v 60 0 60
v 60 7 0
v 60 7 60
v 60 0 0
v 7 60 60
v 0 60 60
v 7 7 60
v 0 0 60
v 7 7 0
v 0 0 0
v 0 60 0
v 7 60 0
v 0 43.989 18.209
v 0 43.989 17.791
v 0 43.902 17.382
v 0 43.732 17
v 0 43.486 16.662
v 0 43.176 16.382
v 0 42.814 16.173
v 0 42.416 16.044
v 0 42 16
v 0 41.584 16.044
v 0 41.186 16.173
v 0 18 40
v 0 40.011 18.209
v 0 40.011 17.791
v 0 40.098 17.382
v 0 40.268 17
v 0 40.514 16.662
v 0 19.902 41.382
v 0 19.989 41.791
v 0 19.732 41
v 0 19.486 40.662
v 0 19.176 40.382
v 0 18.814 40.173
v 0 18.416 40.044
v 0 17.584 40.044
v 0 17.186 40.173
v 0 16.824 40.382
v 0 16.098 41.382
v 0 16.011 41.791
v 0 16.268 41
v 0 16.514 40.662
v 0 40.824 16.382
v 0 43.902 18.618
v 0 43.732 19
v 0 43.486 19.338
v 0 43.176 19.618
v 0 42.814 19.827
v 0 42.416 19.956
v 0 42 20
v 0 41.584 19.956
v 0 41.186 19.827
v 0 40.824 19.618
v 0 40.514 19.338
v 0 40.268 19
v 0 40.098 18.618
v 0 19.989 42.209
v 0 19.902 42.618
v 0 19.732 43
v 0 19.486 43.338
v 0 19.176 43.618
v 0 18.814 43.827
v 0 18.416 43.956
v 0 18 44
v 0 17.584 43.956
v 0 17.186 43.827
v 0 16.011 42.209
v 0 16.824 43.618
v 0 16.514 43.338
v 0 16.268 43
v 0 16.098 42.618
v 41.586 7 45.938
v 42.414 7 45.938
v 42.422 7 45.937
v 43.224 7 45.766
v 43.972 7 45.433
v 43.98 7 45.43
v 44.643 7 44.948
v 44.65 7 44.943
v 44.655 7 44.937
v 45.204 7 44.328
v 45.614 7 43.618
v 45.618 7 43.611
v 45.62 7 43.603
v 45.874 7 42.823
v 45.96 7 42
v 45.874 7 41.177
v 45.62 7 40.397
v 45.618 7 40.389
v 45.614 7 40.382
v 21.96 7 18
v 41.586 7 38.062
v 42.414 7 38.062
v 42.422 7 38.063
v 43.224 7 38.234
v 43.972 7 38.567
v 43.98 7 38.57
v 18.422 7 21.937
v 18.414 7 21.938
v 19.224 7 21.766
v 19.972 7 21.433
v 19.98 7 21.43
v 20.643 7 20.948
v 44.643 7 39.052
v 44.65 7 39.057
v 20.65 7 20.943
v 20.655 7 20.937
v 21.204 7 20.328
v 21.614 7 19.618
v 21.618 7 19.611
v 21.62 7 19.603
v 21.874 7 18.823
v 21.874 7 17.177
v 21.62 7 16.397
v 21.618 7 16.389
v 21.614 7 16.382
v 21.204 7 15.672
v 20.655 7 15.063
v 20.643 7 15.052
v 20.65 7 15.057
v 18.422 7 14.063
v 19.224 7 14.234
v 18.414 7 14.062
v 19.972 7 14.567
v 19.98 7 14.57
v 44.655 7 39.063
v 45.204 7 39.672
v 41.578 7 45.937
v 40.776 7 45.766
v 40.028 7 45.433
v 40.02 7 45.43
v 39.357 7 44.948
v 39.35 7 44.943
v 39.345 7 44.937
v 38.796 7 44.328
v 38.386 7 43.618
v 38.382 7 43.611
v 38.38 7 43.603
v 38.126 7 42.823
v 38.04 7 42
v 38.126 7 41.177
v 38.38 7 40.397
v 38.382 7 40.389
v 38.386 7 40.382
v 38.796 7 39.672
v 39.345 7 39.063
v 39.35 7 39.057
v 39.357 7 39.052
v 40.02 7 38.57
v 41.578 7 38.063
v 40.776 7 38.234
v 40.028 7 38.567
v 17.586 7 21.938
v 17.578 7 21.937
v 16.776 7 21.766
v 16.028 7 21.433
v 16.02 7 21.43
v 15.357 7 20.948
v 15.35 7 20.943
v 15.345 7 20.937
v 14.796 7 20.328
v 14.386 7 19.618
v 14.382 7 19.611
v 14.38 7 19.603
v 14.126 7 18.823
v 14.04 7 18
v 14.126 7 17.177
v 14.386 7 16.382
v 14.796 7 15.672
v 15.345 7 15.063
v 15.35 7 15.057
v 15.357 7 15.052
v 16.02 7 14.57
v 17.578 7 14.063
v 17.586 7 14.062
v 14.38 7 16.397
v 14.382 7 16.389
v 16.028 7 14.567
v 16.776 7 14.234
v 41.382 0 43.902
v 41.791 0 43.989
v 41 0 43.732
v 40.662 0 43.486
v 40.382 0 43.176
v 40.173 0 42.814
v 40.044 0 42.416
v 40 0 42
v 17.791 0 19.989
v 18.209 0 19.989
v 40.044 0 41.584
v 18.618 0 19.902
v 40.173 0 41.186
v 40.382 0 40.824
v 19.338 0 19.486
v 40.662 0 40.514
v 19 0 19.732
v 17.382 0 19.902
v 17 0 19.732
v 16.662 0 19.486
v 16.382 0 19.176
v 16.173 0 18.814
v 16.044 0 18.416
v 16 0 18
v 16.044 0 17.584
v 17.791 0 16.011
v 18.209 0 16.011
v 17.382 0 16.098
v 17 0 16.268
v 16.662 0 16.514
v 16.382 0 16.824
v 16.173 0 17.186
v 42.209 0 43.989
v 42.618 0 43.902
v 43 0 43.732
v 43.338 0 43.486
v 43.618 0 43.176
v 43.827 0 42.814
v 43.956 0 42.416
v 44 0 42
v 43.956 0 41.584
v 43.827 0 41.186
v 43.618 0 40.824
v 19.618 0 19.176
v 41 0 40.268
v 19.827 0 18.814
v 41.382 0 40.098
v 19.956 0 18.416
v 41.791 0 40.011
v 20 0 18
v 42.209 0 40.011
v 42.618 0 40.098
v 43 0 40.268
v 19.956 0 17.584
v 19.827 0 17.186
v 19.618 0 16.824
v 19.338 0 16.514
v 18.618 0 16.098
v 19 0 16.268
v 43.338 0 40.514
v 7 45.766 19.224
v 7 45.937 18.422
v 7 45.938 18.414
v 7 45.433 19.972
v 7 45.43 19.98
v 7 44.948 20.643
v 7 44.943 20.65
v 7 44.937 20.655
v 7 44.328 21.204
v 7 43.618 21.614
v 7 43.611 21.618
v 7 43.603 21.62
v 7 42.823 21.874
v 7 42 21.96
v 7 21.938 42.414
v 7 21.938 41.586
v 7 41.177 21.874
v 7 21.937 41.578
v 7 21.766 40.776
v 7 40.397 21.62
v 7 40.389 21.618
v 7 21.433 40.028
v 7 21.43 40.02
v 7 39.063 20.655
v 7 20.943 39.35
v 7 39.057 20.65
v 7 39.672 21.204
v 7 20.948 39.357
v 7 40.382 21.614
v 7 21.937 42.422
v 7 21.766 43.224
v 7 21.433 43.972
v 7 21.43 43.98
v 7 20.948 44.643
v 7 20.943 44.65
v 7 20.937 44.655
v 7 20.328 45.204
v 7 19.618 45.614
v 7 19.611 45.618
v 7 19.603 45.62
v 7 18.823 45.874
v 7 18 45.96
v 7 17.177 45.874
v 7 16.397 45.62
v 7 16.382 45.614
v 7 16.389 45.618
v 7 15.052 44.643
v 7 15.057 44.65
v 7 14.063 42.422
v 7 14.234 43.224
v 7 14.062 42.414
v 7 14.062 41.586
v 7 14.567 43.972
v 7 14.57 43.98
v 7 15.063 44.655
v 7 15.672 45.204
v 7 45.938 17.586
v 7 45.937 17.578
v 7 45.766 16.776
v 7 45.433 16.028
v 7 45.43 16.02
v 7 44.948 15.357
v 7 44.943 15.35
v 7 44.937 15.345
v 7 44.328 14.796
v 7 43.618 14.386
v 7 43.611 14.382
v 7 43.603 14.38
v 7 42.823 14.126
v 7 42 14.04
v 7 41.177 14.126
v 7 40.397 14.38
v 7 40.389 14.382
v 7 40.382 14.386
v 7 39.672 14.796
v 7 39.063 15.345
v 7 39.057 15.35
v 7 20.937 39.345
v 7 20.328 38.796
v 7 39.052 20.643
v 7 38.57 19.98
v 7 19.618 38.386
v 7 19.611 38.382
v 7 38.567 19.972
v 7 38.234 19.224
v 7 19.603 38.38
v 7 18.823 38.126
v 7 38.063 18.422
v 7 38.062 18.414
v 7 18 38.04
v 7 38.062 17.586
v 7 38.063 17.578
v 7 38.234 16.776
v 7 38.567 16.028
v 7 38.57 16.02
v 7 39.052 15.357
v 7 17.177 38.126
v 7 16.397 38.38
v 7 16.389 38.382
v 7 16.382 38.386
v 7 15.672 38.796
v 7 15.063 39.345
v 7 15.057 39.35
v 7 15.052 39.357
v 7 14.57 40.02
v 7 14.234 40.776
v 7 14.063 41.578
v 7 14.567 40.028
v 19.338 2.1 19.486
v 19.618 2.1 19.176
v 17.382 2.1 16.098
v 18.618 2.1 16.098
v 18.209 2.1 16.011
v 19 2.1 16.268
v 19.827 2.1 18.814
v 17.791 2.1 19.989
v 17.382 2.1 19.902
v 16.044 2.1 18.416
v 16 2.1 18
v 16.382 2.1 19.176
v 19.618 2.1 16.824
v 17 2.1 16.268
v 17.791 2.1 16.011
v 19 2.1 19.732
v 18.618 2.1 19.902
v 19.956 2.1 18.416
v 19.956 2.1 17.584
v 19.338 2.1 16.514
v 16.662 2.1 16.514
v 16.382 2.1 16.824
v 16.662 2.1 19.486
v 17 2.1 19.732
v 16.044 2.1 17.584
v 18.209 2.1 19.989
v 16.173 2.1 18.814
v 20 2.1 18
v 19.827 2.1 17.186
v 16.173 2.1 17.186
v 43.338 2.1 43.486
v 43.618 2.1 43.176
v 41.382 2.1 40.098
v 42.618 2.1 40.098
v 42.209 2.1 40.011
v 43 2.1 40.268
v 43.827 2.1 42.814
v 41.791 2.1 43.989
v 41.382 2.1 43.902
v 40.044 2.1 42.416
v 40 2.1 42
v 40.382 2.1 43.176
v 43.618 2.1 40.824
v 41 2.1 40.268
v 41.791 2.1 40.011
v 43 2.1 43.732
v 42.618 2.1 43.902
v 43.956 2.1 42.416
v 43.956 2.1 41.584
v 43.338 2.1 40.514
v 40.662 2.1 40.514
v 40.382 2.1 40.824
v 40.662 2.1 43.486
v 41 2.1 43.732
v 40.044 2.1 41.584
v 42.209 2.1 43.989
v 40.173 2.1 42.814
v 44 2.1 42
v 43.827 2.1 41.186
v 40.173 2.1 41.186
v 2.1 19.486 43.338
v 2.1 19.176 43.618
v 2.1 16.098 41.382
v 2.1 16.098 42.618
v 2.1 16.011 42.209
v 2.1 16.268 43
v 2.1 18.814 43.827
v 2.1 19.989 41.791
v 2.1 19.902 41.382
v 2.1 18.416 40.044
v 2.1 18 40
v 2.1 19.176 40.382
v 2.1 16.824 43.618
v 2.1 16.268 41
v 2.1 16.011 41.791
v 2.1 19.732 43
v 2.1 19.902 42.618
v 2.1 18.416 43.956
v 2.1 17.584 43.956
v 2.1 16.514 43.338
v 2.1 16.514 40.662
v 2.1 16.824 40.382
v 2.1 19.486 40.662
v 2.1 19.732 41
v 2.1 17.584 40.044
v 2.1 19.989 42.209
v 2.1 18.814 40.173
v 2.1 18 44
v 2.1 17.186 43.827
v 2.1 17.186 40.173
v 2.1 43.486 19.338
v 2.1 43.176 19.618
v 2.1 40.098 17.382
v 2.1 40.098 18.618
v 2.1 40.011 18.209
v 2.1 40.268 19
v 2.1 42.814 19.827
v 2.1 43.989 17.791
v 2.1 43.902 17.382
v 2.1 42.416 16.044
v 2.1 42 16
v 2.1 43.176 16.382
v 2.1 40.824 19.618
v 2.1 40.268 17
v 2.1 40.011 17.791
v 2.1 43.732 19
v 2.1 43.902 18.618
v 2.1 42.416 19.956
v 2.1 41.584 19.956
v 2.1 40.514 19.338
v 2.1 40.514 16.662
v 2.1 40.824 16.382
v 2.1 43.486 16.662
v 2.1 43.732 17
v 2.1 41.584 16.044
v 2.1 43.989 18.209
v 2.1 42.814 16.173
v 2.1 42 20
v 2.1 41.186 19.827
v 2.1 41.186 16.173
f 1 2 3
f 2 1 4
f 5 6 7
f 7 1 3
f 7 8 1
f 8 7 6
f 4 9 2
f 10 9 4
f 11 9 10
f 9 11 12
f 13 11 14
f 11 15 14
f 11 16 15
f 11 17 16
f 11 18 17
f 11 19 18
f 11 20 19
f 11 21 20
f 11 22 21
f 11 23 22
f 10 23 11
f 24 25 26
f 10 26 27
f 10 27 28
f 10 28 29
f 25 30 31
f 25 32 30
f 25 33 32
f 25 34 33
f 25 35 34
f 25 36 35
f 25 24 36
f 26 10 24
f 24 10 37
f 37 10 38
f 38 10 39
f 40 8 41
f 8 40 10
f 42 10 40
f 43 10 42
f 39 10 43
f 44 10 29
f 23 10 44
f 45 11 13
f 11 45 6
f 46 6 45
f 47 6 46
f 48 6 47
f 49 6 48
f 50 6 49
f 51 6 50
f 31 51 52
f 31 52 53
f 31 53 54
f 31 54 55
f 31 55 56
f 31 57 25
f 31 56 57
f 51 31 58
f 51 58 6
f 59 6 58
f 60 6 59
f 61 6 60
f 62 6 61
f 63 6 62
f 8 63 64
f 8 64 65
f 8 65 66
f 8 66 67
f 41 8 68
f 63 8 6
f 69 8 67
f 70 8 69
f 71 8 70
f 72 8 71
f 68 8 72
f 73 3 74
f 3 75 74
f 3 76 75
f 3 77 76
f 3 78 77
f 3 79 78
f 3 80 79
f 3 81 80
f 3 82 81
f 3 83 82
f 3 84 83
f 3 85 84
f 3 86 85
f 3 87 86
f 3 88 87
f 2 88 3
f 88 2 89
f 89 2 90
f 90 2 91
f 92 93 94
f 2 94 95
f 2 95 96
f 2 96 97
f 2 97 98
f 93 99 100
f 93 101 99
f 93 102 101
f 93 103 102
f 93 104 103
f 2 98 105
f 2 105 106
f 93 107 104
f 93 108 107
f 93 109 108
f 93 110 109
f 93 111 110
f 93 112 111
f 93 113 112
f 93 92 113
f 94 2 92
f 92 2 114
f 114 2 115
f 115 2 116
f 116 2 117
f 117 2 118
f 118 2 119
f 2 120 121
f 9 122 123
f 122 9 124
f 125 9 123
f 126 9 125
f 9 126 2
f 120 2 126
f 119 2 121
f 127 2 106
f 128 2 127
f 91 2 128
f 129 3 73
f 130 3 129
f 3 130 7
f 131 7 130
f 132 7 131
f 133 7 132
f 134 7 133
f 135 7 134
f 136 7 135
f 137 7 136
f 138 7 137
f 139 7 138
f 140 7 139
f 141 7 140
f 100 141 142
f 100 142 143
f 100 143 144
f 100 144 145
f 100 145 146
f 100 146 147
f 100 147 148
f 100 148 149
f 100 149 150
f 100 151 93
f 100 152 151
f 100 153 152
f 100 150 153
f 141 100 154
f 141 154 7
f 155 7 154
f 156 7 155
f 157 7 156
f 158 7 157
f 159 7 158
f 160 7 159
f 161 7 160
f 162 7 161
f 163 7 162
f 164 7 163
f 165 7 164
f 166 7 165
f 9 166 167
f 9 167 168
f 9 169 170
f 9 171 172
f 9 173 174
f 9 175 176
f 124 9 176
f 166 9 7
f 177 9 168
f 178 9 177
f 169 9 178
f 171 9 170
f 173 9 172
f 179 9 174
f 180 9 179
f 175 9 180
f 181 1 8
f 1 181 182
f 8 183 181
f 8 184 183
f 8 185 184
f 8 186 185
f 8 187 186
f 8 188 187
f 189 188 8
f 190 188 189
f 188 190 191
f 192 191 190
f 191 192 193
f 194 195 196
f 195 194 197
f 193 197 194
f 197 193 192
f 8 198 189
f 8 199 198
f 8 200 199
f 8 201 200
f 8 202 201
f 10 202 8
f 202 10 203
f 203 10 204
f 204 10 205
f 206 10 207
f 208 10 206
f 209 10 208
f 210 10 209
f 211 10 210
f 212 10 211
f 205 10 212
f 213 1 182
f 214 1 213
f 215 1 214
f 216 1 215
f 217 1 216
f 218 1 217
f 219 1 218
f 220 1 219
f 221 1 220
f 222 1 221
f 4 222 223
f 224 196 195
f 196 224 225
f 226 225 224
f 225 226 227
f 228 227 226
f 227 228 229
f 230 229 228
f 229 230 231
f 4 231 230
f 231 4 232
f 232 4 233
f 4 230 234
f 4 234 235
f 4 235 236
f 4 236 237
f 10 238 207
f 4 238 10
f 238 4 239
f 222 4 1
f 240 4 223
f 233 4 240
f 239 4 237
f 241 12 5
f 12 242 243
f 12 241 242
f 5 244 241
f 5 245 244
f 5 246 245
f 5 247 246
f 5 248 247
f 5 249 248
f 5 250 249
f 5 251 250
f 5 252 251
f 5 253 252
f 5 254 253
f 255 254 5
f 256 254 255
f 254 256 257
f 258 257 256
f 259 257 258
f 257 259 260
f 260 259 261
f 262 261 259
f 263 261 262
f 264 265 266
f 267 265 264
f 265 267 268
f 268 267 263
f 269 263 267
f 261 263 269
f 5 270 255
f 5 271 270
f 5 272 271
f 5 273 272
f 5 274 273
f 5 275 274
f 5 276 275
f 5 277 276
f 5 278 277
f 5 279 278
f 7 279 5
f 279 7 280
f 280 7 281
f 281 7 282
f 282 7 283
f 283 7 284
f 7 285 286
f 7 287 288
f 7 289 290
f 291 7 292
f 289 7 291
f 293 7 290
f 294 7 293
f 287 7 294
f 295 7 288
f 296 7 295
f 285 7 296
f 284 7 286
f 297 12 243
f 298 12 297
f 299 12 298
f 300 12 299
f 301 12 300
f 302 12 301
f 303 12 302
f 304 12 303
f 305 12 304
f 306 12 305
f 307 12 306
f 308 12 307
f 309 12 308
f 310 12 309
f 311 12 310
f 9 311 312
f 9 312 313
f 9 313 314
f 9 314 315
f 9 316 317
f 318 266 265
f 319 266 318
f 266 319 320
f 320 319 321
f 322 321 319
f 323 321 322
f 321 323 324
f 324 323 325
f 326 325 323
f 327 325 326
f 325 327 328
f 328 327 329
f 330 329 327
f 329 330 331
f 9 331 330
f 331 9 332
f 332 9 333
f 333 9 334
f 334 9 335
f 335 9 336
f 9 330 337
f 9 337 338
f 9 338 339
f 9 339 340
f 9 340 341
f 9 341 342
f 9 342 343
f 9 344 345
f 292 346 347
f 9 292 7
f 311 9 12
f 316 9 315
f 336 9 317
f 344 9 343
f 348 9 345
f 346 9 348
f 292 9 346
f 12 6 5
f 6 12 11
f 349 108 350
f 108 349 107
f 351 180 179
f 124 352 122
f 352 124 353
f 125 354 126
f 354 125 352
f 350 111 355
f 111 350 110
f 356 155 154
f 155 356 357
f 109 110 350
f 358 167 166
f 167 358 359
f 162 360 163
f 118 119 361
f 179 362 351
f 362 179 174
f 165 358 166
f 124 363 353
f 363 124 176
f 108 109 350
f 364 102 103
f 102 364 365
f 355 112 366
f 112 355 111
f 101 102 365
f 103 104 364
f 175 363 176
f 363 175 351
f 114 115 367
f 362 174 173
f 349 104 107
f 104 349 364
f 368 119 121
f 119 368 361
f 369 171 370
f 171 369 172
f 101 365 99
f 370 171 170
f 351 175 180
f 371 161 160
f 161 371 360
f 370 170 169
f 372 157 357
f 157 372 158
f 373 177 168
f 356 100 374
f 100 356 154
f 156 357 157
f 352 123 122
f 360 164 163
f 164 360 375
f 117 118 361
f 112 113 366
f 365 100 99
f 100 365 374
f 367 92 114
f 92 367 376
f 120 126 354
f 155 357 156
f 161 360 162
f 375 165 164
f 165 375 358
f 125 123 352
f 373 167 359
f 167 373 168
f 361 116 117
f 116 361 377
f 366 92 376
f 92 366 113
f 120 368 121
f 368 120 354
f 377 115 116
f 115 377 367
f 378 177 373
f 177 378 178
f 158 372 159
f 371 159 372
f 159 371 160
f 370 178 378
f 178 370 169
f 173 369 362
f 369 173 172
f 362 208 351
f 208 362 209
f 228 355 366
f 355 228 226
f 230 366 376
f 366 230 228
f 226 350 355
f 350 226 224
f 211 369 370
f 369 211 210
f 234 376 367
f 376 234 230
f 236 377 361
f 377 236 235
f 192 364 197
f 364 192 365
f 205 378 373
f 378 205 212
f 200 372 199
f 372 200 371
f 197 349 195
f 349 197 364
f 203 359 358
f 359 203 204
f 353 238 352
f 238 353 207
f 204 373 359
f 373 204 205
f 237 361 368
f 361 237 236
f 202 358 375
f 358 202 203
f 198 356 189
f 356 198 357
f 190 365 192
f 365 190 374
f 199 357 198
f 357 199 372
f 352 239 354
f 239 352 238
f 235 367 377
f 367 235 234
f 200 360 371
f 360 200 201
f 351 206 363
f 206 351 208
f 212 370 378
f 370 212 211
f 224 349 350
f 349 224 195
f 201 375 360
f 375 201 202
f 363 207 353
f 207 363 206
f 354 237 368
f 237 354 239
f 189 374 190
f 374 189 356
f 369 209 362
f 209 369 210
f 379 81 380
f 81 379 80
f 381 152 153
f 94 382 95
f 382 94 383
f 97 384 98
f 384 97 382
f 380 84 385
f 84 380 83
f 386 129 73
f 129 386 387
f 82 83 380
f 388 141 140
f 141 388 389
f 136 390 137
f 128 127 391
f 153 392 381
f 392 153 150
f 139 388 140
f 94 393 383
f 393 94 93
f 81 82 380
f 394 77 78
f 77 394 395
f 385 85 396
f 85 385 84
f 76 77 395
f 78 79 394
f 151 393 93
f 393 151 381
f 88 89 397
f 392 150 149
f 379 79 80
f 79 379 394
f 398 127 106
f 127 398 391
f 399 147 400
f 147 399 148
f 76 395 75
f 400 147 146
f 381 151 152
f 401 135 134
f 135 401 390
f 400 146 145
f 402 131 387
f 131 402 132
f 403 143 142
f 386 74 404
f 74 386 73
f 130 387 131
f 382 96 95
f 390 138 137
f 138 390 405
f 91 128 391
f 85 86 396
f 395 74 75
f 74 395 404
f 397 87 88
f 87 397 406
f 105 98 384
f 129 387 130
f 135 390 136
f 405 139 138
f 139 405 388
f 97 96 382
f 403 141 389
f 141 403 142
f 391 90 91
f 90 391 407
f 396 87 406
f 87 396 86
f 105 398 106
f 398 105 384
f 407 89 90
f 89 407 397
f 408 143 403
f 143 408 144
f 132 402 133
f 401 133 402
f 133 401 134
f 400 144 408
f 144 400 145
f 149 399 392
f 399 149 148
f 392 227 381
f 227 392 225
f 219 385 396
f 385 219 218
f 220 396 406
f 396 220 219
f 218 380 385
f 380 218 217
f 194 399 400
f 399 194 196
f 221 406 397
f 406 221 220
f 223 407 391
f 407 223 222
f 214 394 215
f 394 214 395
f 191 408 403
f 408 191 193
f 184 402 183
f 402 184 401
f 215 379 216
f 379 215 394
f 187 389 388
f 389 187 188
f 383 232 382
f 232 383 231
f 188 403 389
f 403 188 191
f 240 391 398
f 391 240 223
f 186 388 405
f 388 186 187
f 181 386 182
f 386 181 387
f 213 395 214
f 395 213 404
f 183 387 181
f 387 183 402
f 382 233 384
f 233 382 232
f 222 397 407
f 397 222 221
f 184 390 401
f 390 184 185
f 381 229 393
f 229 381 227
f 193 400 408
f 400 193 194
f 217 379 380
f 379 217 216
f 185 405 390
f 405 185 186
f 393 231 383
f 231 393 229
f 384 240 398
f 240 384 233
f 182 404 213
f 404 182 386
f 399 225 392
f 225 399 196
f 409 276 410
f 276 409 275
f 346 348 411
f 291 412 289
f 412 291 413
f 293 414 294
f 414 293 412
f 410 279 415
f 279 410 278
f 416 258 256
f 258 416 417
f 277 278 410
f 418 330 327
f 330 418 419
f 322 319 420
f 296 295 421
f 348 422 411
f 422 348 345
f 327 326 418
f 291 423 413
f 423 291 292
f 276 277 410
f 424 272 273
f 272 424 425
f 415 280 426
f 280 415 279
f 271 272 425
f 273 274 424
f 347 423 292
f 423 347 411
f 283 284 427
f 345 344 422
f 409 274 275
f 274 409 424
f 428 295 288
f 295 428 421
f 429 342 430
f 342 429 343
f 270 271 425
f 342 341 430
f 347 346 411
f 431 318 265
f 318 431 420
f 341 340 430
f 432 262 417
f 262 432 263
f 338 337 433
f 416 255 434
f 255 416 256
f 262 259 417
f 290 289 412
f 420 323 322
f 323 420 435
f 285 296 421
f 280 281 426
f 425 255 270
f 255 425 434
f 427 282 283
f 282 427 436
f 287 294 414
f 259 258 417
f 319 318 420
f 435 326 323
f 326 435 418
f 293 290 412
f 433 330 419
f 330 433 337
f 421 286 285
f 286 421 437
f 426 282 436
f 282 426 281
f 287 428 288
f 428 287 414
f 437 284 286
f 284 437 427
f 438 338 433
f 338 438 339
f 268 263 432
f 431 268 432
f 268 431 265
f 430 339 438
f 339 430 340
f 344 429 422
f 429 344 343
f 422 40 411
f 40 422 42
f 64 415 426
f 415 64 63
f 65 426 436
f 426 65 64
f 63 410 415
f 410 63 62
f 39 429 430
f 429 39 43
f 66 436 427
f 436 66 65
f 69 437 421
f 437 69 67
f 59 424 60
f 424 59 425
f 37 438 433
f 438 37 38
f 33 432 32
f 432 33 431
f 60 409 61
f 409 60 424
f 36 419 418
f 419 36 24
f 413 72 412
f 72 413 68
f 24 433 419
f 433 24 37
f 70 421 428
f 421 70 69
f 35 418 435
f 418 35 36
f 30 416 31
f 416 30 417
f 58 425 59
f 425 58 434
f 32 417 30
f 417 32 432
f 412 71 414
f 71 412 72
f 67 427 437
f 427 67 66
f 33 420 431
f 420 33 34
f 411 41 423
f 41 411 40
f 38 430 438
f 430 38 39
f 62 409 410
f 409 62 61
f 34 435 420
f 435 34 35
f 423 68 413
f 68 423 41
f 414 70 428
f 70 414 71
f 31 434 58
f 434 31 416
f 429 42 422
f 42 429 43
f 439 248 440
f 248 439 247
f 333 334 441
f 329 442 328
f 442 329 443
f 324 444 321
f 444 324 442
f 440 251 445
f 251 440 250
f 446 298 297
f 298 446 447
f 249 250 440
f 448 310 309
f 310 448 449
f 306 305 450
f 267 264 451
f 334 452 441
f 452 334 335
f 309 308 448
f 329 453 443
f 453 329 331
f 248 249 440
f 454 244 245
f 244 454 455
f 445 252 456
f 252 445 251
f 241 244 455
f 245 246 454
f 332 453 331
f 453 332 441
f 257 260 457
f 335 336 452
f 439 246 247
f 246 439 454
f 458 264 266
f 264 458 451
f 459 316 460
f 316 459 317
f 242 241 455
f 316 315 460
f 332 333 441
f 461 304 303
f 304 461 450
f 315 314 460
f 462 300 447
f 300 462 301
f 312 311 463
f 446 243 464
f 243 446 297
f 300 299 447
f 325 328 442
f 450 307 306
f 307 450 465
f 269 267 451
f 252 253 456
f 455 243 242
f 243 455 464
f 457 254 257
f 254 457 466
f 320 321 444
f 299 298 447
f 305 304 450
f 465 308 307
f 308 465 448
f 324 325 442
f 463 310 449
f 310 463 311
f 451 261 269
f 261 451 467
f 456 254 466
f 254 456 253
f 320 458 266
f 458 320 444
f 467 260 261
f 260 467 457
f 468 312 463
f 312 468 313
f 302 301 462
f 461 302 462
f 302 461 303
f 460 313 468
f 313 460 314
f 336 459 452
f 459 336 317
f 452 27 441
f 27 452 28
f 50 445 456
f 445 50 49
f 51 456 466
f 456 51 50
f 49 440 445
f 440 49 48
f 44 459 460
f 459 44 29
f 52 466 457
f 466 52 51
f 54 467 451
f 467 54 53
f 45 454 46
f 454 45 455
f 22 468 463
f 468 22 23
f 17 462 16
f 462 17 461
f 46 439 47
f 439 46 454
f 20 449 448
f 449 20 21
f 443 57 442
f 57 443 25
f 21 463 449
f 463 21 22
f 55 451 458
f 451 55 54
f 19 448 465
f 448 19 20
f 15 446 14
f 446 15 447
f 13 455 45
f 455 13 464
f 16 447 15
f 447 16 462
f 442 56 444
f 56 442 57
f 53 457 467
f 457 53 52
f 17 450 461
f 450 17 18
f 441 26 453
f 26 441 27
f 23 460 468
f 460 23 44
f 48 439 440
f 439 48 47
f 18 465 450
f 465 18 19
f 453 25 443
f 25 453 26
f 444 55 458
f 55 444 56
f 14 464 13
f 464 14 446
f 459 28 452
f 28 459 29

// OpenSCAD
//screw
screw1      =  8; //width of the screw head
screw2      =  4; //width of the screw body
screwhead   =  5; //height of the screw head
screwlength = 10; //length of the screw body

length      = 60;
thickness   =  7;
height      = 60;
$fn = 30;

module screw() {
    color( [0, 0, 1] ) {
        cylinder( d1 = screw1, d2 = screw2, h = screwhead);
        translate([0, 0, screwhead]) cylinder( d=screw2, h = screwlength);
    }
}

difference() {
    union() {
        cube([ length, thickness, height ]);
        cube([ thickness, length, height ]);
    }
    
    translate([ 0.3*length, thickness+0.1, 0.3*height ]) rotate( [+90, 0, 0 ] ) screw();
    
    translate([ 0.7*length, thickness+0.1, 0.7*height ]) rotate( [+90, 0, 0 ] ) screw();

    translate([ thickness+0.1, 0.3*length, 0.7*height ]) rotate( [0, -90, 0 ] ) screw();
    
    translate([ thickness+0.1, 0.7*length, 0.3*height ]) rotate( [0, -90, 0 ] ) screw();
    
}
